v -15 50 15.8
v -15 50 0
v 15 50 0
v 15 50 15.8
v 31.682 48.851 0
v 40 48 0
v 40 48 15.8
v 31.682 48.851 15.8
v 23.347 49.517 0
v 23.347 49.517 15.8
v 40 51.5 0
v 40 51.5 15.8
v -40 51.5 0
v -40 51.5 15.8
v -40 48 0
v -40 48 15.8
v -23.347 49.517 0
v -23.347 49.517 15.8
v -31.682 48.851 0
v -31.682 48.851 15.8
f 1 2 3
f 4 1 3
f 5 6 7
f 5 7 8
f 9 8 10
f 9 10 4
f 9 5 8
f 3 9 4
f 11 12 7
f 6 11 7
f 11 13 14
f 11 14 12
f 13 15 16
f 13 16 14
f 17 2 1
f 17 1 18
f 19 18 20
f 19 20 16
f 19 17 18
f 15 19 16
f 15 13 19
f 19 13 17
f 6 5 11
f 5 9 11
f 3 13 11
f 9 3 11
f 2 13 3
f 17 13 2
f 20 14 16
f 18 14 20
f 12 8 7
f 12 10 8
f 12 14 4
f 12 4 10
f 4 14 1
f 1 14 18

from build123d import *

# Parameters (mm, degrees)
PAD_DEPTH = 15.8


with BuildPart() as part:
    # Sketch → Pad (new body)
    with BuildSketch(Plane.XY):
        with BuildLine():
            Line((-15, 50), (15, 50))
            ThreePointArc((40, 48), (27.516552, 49.206897), (15, 50))
            Line((40, 51.5), (40, 48))
            Line((-40, 51.5), (40, 51.5))
            Line((-40, 48), (-40, 51.5))
            ThreePointArc((-15, 50), (-27.516552, 49.206897), (-40, 48))
        make_face()
    extrude(amount=PAD_DEPTH)


solid = part.part
